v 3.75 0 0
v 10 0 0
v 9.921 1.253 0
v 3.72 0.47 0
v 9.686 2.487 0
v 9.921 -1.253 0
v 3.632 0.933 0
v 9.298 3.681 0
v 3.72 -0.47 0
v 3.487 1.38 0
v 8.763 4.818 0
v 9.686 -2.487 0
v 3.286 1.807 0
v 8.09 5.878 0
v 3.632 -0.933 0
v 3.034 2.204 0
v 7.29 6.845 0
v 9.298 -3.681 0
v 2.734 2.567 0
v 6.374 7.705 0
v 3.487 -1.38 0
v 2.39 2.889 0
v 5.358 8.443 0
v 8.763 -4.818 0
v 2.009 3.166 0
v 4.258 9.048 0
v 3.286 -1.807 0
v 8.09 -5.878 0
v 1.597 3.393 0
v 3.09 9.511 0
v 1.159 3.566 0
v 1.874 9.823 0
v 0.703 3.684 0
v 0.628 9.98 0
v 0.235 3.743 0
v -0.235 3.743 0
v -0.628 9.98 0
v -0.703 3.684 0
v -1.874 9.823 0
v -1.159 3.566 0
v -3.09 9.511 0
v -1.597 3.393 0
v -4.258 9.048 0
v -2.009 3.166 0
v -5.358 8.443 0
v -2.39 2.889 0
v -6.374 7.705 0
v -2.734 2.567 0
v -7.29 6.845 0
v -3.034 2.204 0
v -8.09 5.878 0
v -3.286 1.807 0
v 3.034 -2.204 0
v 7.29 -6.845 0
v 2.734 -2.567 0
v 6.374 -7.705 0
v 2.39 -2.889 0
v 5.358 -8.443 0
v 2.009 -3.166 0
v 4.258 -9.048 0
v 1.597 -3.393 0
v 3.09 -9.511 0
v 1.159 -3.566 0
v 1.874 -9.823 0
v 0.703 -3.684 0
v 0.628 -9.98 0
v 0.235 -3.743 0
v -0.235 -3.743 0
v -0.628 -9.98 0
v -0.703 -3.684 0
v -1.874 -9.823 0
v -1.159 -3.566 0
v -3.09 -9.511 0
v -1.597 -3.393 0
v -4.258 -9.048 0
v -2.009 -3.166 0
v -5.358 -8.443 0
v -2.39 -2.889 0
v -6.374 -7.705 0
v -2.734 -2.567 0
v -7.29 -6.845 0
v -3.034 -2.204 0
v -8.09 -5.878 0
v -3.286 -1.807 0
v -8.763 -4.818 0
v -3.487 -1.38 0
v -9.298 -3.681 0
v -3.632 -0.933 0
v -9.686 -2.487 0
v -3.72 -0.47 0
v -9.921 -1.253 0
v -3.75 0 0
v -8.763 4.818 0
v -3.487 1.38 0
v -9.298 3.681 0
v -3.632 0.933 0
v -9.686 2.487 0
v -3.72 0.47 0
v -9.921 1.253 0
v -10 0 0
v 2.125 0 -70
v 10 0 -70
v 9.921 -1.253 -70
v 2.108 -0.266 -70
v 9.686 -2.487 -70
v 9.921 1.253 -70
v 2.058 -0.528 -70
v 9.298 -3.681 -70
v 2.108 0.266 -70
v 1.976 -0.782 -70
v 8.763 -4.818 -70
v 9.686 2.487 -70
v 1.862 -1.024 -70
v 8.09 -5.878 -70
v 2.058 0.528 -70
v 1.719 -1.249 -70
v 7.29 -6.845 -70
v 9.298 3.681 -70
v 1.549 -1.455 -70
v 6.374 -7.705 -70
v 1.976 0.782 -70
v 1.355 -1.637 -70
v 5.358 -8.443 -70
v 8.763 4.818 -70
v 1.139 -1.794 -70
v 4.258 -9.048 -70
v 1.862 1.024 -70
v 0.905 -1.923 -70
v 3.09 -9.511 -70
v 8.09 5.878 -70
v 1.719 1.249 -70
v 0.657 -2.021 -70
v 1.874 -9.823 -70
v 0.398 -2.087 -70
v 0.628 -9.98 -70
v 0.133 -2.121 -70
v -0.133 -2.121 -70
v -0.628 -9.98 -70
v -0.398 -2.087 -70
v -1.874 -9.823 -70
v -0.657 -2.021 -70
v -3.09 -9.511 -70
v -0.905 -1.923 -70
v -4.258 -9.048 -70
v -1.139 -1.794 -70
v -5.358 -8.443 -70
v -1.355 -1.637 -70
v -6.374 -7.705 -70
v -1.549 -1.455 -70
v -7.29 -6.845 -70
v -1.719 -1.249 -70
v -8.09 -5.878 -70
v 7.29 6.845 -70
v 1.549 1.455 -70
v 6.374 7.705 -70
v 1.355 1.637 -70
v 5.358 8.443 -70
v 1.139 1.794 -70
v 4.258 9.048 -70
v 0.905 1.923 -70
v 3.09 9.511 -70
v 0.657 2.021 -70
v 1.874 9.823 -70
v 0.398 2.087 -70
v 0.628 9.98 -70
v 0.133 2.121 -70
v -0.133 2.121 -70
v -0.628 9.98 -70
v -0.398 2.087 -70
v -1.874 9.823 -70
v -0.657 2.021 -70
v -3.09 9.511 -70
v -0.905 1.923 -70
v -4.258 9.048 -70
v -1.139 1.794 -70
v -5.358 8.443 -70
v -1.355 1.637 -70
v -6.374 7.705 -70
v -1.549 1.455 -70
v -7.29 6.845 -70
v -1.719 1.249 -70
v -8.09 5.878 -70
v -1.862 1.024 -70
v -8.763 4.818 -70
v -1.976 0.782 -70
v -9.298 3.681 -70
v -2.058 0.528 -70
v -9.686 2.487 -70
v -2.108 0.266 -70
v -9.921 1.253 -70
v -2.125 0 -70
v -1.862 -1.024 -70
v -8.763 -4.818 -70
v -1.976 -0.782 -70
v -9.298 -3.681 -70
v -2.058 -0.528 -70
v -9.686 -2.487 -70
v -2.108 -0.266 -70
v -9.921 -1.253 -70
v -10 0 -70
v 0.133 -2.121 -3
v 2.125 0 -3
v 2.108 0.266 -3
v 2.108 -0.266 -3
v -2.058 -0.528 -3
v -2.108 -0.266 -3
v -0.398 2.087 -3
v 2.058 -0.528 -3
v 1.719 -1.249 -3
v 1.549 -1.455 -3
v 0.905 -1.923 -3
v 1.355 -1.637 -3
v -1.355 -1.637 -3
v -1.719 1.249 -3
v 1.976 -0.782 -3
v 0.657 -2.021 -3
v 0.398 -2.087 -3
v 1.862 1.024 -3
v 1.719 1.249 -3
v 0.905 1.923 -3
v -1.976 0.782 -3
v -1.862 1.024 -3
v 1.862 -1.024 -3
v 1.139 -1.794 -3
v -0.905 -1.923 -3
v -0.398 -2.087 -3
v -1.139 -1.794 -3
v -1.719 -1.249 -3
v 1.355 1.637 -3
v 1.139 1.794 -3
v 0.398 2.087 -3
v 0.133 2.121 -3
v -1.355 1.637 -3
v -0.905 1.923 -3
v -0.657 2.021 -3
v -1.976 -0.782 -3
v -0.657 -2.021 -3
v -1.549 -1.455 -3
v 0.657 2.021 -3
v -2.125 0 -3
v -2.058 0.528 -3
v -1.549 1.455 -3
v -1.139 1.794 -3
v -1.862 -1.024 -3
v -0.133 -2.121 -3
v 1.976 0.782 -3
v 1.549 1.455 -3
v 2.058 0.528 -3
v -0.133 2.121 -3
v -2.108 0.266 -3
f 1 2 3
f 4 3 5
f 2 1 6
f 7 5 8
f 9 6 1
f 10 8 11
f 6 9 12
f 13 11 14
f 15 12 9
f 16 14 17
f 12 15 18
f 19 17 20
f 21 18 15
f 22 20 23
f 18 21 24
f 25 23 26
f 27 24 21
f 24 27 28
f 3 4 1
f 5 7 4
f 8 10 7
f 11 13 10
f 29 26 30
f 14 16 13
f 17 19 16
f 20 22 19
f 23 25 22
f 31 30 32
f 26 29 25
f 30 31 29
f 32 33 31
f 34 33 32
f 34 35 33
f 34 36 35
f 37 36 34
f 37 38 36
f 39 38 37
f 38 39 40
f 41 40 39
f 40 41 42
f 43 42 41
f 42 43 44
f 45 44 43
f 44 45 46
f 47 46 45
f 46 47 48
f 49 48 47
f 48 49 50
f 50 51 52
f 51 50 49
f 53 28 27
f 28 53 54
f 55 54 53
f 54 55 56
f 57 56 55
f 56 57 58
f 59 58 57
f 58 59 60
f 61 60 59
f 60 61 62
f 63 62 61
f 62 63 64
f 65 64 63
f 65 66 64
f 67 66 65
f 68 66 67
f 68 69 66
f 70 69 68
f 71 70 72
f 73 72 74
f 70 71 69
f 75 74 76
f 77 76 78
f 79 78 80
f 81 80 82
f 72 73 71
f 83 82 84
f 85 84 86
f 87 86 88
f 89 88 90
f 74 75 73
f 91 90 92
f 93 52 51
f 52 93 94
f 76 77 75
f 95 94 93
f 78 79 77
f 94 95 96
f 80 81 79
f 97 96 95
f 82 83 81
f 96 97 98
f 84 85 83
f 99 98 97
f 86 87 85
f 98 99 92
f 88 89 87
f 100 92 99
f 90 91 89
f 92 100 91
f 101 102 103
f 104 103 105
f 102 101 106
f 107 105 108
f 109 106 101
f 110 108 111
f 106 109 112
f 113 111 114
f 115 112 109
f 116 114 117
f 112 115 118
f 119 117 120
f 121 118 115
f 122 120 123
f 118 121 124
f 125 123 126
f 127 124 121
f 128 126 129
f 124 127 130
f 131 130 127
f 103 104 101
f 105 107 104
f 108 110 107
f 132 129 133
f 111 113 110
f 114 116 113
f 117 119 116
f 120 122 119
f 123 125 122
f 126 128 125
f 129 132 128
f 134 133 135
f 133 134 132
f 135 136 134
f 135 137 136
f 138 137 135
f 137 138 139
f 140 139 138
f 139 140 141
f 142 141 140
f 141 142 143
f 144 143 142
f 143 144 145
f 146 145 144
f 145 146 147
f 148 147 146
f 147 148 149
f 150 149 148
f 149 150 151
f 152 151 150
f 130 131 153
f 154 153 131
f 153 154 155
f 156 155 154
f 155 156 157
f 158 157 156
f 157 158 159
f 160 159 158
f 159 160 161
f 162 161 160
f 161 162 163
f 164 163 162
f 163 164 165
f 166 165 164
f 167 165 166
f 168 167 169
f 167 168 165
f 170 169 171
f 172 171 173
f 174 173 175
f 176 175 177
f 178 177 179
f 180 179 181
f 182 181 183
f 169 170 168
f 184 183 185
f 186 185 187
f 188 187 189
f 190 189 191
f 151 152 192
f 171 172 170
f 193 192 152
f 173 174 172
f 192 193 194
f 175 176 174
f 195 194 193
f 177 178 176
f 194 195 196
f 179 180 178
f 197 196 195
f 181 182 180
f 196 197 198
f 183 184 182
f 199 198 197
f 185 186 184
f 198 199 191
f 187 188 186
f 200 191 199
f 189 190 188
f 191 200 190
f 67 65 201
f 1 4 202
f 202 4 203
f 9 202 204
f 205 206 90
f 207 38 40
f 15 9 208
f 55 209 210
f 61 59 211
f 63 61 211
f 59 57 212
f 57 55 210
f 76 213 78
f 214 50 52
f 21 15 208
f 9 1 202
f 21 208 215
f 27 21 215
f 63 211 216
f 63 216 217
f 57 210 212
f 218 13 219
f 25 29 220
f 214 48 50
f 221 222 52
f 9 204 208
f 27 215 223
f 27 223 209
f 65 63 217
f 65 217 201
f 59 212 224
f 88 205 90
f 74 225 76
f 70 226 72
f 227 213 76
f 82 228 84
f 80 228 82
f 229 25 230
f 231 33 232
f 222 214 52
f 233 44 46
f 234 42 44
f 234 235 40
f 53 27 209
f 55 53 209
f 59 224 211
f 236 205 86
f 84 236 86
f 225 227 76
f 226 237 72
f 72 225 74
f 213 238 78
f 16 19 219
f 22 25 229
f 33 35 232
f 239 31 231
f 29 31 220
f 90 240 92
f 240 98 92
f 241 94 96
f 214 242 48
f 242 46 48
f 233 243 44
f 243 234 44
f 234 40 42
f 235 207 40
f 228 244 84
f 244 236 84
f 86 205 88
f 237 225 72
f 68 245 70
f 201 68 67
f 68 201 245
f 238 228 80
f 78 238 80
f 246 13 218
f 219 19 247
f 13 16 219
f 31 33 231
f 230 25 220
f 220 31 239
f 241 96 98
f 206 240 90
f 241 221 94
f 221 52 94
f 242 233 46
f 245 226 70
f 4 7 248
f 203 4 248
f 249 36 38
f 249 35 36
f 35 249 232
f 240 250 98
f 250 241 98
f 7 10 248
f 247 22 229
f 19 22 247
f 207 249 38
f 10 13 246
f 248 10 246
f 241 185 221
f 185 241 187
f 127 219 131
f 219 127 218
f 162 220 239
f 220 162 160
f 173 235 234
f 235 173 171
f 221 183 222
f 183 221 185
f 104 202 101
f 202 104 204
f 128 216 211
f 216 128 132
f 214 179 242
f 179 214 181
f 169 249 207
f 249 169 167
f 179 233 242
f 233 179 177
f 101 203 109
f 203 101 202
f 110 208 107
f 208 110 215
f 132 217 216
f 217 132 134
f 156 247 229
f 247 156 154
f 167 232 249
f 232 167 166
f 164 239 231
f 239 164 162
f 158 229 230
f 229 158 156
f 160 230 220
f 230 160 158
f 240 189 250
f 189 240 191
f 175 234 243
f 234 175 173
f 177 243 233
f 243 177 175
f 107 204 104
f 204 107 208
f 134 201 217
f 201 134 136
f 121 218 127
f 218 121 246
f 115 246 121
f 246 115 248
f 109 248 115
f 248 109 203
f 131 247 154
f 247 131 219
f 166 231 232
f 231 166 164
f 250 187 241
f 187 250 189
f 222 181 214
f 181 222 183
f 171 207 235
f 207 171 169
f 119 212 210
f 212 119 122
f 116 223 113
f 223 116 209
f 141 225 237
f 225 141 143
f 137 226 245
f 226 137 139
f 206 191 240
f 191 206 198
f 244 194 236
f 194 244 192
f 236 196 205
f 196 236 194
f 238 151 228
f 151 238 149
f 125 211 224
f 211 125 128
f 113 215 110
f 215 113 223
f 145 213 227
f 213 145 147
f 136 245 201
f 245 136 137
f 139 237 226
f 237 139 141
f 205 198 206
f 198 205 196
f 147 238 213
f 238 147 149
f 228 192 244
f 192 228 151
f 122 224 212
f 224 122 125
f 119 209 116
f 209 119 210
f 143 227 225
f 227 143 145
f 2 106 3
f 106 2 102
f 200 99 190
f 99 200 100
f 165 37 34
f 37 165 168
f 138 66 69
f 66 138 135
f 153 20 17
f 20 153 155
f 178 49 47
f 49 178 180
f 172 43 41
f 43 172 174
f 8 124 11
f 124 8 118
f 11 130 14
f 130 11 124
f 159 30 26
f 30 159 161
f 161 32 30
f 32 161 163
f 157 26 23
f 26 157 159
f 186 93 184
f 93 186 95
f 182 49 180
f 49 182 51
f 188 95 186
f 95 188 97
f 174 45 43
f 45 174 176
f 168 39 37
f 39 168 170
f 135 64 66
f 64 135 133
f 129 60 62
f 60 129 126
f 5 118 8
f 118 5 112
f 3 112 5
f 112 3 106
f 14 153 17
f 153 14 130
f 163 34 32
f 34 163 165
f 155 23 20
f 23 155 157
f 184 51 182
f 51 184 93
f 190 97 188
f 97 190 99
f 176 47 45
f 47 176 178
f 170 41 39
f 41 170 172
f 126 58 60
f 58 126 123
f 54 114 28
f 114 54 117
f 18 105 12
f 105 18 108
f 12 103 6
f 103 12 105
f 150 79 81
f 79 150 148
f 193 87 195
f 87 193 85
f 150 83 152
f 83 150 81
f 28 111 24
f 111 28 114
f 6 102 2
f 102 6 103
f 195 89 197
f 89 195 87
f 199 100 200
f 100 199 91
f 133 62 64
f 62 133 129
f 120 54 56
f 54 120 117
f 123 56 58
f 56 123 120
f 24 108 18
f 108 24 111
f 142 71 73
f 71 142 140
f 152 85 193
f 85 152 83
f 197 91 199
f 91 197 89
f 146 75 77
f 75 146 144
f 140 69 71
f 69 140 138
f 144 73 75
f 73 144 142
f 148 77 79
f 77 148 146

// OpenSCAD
$fn = 50;


difference() {
	union() {
		translate(v = [0, 0, -70.0000000000]) {
			cylinder(h = 70, r = 10.0000000000);
		}
		cylinder(h = 0, r = 20.0000000000);
	}
	union() {
		translate(v = [0, 0, 0]) {
			rotate(a = [0, 0, 0]) {
				difference() {
					union() {
						#translate(v = [0, 0, -70.0000000000]) {
							cylinder(h = 70, r = 2.0000000000);
						}
						#translate(v = [0, 0, -3]) {
							cylinder(h = 3, r1 = 2.1250000000, r2 = 3.7500000000);
						}
						#translate(v = [0, 0, -70.0000000000]) {
							cylinder(h = 70, r = 2.1250000000);
						}
						#translate(v = [0, 0, -70.0000000000]) {
							cylinder(h = 70, r = 2.0000000000);
						}
					}
					union();
				}
			}
		}
	}
}
